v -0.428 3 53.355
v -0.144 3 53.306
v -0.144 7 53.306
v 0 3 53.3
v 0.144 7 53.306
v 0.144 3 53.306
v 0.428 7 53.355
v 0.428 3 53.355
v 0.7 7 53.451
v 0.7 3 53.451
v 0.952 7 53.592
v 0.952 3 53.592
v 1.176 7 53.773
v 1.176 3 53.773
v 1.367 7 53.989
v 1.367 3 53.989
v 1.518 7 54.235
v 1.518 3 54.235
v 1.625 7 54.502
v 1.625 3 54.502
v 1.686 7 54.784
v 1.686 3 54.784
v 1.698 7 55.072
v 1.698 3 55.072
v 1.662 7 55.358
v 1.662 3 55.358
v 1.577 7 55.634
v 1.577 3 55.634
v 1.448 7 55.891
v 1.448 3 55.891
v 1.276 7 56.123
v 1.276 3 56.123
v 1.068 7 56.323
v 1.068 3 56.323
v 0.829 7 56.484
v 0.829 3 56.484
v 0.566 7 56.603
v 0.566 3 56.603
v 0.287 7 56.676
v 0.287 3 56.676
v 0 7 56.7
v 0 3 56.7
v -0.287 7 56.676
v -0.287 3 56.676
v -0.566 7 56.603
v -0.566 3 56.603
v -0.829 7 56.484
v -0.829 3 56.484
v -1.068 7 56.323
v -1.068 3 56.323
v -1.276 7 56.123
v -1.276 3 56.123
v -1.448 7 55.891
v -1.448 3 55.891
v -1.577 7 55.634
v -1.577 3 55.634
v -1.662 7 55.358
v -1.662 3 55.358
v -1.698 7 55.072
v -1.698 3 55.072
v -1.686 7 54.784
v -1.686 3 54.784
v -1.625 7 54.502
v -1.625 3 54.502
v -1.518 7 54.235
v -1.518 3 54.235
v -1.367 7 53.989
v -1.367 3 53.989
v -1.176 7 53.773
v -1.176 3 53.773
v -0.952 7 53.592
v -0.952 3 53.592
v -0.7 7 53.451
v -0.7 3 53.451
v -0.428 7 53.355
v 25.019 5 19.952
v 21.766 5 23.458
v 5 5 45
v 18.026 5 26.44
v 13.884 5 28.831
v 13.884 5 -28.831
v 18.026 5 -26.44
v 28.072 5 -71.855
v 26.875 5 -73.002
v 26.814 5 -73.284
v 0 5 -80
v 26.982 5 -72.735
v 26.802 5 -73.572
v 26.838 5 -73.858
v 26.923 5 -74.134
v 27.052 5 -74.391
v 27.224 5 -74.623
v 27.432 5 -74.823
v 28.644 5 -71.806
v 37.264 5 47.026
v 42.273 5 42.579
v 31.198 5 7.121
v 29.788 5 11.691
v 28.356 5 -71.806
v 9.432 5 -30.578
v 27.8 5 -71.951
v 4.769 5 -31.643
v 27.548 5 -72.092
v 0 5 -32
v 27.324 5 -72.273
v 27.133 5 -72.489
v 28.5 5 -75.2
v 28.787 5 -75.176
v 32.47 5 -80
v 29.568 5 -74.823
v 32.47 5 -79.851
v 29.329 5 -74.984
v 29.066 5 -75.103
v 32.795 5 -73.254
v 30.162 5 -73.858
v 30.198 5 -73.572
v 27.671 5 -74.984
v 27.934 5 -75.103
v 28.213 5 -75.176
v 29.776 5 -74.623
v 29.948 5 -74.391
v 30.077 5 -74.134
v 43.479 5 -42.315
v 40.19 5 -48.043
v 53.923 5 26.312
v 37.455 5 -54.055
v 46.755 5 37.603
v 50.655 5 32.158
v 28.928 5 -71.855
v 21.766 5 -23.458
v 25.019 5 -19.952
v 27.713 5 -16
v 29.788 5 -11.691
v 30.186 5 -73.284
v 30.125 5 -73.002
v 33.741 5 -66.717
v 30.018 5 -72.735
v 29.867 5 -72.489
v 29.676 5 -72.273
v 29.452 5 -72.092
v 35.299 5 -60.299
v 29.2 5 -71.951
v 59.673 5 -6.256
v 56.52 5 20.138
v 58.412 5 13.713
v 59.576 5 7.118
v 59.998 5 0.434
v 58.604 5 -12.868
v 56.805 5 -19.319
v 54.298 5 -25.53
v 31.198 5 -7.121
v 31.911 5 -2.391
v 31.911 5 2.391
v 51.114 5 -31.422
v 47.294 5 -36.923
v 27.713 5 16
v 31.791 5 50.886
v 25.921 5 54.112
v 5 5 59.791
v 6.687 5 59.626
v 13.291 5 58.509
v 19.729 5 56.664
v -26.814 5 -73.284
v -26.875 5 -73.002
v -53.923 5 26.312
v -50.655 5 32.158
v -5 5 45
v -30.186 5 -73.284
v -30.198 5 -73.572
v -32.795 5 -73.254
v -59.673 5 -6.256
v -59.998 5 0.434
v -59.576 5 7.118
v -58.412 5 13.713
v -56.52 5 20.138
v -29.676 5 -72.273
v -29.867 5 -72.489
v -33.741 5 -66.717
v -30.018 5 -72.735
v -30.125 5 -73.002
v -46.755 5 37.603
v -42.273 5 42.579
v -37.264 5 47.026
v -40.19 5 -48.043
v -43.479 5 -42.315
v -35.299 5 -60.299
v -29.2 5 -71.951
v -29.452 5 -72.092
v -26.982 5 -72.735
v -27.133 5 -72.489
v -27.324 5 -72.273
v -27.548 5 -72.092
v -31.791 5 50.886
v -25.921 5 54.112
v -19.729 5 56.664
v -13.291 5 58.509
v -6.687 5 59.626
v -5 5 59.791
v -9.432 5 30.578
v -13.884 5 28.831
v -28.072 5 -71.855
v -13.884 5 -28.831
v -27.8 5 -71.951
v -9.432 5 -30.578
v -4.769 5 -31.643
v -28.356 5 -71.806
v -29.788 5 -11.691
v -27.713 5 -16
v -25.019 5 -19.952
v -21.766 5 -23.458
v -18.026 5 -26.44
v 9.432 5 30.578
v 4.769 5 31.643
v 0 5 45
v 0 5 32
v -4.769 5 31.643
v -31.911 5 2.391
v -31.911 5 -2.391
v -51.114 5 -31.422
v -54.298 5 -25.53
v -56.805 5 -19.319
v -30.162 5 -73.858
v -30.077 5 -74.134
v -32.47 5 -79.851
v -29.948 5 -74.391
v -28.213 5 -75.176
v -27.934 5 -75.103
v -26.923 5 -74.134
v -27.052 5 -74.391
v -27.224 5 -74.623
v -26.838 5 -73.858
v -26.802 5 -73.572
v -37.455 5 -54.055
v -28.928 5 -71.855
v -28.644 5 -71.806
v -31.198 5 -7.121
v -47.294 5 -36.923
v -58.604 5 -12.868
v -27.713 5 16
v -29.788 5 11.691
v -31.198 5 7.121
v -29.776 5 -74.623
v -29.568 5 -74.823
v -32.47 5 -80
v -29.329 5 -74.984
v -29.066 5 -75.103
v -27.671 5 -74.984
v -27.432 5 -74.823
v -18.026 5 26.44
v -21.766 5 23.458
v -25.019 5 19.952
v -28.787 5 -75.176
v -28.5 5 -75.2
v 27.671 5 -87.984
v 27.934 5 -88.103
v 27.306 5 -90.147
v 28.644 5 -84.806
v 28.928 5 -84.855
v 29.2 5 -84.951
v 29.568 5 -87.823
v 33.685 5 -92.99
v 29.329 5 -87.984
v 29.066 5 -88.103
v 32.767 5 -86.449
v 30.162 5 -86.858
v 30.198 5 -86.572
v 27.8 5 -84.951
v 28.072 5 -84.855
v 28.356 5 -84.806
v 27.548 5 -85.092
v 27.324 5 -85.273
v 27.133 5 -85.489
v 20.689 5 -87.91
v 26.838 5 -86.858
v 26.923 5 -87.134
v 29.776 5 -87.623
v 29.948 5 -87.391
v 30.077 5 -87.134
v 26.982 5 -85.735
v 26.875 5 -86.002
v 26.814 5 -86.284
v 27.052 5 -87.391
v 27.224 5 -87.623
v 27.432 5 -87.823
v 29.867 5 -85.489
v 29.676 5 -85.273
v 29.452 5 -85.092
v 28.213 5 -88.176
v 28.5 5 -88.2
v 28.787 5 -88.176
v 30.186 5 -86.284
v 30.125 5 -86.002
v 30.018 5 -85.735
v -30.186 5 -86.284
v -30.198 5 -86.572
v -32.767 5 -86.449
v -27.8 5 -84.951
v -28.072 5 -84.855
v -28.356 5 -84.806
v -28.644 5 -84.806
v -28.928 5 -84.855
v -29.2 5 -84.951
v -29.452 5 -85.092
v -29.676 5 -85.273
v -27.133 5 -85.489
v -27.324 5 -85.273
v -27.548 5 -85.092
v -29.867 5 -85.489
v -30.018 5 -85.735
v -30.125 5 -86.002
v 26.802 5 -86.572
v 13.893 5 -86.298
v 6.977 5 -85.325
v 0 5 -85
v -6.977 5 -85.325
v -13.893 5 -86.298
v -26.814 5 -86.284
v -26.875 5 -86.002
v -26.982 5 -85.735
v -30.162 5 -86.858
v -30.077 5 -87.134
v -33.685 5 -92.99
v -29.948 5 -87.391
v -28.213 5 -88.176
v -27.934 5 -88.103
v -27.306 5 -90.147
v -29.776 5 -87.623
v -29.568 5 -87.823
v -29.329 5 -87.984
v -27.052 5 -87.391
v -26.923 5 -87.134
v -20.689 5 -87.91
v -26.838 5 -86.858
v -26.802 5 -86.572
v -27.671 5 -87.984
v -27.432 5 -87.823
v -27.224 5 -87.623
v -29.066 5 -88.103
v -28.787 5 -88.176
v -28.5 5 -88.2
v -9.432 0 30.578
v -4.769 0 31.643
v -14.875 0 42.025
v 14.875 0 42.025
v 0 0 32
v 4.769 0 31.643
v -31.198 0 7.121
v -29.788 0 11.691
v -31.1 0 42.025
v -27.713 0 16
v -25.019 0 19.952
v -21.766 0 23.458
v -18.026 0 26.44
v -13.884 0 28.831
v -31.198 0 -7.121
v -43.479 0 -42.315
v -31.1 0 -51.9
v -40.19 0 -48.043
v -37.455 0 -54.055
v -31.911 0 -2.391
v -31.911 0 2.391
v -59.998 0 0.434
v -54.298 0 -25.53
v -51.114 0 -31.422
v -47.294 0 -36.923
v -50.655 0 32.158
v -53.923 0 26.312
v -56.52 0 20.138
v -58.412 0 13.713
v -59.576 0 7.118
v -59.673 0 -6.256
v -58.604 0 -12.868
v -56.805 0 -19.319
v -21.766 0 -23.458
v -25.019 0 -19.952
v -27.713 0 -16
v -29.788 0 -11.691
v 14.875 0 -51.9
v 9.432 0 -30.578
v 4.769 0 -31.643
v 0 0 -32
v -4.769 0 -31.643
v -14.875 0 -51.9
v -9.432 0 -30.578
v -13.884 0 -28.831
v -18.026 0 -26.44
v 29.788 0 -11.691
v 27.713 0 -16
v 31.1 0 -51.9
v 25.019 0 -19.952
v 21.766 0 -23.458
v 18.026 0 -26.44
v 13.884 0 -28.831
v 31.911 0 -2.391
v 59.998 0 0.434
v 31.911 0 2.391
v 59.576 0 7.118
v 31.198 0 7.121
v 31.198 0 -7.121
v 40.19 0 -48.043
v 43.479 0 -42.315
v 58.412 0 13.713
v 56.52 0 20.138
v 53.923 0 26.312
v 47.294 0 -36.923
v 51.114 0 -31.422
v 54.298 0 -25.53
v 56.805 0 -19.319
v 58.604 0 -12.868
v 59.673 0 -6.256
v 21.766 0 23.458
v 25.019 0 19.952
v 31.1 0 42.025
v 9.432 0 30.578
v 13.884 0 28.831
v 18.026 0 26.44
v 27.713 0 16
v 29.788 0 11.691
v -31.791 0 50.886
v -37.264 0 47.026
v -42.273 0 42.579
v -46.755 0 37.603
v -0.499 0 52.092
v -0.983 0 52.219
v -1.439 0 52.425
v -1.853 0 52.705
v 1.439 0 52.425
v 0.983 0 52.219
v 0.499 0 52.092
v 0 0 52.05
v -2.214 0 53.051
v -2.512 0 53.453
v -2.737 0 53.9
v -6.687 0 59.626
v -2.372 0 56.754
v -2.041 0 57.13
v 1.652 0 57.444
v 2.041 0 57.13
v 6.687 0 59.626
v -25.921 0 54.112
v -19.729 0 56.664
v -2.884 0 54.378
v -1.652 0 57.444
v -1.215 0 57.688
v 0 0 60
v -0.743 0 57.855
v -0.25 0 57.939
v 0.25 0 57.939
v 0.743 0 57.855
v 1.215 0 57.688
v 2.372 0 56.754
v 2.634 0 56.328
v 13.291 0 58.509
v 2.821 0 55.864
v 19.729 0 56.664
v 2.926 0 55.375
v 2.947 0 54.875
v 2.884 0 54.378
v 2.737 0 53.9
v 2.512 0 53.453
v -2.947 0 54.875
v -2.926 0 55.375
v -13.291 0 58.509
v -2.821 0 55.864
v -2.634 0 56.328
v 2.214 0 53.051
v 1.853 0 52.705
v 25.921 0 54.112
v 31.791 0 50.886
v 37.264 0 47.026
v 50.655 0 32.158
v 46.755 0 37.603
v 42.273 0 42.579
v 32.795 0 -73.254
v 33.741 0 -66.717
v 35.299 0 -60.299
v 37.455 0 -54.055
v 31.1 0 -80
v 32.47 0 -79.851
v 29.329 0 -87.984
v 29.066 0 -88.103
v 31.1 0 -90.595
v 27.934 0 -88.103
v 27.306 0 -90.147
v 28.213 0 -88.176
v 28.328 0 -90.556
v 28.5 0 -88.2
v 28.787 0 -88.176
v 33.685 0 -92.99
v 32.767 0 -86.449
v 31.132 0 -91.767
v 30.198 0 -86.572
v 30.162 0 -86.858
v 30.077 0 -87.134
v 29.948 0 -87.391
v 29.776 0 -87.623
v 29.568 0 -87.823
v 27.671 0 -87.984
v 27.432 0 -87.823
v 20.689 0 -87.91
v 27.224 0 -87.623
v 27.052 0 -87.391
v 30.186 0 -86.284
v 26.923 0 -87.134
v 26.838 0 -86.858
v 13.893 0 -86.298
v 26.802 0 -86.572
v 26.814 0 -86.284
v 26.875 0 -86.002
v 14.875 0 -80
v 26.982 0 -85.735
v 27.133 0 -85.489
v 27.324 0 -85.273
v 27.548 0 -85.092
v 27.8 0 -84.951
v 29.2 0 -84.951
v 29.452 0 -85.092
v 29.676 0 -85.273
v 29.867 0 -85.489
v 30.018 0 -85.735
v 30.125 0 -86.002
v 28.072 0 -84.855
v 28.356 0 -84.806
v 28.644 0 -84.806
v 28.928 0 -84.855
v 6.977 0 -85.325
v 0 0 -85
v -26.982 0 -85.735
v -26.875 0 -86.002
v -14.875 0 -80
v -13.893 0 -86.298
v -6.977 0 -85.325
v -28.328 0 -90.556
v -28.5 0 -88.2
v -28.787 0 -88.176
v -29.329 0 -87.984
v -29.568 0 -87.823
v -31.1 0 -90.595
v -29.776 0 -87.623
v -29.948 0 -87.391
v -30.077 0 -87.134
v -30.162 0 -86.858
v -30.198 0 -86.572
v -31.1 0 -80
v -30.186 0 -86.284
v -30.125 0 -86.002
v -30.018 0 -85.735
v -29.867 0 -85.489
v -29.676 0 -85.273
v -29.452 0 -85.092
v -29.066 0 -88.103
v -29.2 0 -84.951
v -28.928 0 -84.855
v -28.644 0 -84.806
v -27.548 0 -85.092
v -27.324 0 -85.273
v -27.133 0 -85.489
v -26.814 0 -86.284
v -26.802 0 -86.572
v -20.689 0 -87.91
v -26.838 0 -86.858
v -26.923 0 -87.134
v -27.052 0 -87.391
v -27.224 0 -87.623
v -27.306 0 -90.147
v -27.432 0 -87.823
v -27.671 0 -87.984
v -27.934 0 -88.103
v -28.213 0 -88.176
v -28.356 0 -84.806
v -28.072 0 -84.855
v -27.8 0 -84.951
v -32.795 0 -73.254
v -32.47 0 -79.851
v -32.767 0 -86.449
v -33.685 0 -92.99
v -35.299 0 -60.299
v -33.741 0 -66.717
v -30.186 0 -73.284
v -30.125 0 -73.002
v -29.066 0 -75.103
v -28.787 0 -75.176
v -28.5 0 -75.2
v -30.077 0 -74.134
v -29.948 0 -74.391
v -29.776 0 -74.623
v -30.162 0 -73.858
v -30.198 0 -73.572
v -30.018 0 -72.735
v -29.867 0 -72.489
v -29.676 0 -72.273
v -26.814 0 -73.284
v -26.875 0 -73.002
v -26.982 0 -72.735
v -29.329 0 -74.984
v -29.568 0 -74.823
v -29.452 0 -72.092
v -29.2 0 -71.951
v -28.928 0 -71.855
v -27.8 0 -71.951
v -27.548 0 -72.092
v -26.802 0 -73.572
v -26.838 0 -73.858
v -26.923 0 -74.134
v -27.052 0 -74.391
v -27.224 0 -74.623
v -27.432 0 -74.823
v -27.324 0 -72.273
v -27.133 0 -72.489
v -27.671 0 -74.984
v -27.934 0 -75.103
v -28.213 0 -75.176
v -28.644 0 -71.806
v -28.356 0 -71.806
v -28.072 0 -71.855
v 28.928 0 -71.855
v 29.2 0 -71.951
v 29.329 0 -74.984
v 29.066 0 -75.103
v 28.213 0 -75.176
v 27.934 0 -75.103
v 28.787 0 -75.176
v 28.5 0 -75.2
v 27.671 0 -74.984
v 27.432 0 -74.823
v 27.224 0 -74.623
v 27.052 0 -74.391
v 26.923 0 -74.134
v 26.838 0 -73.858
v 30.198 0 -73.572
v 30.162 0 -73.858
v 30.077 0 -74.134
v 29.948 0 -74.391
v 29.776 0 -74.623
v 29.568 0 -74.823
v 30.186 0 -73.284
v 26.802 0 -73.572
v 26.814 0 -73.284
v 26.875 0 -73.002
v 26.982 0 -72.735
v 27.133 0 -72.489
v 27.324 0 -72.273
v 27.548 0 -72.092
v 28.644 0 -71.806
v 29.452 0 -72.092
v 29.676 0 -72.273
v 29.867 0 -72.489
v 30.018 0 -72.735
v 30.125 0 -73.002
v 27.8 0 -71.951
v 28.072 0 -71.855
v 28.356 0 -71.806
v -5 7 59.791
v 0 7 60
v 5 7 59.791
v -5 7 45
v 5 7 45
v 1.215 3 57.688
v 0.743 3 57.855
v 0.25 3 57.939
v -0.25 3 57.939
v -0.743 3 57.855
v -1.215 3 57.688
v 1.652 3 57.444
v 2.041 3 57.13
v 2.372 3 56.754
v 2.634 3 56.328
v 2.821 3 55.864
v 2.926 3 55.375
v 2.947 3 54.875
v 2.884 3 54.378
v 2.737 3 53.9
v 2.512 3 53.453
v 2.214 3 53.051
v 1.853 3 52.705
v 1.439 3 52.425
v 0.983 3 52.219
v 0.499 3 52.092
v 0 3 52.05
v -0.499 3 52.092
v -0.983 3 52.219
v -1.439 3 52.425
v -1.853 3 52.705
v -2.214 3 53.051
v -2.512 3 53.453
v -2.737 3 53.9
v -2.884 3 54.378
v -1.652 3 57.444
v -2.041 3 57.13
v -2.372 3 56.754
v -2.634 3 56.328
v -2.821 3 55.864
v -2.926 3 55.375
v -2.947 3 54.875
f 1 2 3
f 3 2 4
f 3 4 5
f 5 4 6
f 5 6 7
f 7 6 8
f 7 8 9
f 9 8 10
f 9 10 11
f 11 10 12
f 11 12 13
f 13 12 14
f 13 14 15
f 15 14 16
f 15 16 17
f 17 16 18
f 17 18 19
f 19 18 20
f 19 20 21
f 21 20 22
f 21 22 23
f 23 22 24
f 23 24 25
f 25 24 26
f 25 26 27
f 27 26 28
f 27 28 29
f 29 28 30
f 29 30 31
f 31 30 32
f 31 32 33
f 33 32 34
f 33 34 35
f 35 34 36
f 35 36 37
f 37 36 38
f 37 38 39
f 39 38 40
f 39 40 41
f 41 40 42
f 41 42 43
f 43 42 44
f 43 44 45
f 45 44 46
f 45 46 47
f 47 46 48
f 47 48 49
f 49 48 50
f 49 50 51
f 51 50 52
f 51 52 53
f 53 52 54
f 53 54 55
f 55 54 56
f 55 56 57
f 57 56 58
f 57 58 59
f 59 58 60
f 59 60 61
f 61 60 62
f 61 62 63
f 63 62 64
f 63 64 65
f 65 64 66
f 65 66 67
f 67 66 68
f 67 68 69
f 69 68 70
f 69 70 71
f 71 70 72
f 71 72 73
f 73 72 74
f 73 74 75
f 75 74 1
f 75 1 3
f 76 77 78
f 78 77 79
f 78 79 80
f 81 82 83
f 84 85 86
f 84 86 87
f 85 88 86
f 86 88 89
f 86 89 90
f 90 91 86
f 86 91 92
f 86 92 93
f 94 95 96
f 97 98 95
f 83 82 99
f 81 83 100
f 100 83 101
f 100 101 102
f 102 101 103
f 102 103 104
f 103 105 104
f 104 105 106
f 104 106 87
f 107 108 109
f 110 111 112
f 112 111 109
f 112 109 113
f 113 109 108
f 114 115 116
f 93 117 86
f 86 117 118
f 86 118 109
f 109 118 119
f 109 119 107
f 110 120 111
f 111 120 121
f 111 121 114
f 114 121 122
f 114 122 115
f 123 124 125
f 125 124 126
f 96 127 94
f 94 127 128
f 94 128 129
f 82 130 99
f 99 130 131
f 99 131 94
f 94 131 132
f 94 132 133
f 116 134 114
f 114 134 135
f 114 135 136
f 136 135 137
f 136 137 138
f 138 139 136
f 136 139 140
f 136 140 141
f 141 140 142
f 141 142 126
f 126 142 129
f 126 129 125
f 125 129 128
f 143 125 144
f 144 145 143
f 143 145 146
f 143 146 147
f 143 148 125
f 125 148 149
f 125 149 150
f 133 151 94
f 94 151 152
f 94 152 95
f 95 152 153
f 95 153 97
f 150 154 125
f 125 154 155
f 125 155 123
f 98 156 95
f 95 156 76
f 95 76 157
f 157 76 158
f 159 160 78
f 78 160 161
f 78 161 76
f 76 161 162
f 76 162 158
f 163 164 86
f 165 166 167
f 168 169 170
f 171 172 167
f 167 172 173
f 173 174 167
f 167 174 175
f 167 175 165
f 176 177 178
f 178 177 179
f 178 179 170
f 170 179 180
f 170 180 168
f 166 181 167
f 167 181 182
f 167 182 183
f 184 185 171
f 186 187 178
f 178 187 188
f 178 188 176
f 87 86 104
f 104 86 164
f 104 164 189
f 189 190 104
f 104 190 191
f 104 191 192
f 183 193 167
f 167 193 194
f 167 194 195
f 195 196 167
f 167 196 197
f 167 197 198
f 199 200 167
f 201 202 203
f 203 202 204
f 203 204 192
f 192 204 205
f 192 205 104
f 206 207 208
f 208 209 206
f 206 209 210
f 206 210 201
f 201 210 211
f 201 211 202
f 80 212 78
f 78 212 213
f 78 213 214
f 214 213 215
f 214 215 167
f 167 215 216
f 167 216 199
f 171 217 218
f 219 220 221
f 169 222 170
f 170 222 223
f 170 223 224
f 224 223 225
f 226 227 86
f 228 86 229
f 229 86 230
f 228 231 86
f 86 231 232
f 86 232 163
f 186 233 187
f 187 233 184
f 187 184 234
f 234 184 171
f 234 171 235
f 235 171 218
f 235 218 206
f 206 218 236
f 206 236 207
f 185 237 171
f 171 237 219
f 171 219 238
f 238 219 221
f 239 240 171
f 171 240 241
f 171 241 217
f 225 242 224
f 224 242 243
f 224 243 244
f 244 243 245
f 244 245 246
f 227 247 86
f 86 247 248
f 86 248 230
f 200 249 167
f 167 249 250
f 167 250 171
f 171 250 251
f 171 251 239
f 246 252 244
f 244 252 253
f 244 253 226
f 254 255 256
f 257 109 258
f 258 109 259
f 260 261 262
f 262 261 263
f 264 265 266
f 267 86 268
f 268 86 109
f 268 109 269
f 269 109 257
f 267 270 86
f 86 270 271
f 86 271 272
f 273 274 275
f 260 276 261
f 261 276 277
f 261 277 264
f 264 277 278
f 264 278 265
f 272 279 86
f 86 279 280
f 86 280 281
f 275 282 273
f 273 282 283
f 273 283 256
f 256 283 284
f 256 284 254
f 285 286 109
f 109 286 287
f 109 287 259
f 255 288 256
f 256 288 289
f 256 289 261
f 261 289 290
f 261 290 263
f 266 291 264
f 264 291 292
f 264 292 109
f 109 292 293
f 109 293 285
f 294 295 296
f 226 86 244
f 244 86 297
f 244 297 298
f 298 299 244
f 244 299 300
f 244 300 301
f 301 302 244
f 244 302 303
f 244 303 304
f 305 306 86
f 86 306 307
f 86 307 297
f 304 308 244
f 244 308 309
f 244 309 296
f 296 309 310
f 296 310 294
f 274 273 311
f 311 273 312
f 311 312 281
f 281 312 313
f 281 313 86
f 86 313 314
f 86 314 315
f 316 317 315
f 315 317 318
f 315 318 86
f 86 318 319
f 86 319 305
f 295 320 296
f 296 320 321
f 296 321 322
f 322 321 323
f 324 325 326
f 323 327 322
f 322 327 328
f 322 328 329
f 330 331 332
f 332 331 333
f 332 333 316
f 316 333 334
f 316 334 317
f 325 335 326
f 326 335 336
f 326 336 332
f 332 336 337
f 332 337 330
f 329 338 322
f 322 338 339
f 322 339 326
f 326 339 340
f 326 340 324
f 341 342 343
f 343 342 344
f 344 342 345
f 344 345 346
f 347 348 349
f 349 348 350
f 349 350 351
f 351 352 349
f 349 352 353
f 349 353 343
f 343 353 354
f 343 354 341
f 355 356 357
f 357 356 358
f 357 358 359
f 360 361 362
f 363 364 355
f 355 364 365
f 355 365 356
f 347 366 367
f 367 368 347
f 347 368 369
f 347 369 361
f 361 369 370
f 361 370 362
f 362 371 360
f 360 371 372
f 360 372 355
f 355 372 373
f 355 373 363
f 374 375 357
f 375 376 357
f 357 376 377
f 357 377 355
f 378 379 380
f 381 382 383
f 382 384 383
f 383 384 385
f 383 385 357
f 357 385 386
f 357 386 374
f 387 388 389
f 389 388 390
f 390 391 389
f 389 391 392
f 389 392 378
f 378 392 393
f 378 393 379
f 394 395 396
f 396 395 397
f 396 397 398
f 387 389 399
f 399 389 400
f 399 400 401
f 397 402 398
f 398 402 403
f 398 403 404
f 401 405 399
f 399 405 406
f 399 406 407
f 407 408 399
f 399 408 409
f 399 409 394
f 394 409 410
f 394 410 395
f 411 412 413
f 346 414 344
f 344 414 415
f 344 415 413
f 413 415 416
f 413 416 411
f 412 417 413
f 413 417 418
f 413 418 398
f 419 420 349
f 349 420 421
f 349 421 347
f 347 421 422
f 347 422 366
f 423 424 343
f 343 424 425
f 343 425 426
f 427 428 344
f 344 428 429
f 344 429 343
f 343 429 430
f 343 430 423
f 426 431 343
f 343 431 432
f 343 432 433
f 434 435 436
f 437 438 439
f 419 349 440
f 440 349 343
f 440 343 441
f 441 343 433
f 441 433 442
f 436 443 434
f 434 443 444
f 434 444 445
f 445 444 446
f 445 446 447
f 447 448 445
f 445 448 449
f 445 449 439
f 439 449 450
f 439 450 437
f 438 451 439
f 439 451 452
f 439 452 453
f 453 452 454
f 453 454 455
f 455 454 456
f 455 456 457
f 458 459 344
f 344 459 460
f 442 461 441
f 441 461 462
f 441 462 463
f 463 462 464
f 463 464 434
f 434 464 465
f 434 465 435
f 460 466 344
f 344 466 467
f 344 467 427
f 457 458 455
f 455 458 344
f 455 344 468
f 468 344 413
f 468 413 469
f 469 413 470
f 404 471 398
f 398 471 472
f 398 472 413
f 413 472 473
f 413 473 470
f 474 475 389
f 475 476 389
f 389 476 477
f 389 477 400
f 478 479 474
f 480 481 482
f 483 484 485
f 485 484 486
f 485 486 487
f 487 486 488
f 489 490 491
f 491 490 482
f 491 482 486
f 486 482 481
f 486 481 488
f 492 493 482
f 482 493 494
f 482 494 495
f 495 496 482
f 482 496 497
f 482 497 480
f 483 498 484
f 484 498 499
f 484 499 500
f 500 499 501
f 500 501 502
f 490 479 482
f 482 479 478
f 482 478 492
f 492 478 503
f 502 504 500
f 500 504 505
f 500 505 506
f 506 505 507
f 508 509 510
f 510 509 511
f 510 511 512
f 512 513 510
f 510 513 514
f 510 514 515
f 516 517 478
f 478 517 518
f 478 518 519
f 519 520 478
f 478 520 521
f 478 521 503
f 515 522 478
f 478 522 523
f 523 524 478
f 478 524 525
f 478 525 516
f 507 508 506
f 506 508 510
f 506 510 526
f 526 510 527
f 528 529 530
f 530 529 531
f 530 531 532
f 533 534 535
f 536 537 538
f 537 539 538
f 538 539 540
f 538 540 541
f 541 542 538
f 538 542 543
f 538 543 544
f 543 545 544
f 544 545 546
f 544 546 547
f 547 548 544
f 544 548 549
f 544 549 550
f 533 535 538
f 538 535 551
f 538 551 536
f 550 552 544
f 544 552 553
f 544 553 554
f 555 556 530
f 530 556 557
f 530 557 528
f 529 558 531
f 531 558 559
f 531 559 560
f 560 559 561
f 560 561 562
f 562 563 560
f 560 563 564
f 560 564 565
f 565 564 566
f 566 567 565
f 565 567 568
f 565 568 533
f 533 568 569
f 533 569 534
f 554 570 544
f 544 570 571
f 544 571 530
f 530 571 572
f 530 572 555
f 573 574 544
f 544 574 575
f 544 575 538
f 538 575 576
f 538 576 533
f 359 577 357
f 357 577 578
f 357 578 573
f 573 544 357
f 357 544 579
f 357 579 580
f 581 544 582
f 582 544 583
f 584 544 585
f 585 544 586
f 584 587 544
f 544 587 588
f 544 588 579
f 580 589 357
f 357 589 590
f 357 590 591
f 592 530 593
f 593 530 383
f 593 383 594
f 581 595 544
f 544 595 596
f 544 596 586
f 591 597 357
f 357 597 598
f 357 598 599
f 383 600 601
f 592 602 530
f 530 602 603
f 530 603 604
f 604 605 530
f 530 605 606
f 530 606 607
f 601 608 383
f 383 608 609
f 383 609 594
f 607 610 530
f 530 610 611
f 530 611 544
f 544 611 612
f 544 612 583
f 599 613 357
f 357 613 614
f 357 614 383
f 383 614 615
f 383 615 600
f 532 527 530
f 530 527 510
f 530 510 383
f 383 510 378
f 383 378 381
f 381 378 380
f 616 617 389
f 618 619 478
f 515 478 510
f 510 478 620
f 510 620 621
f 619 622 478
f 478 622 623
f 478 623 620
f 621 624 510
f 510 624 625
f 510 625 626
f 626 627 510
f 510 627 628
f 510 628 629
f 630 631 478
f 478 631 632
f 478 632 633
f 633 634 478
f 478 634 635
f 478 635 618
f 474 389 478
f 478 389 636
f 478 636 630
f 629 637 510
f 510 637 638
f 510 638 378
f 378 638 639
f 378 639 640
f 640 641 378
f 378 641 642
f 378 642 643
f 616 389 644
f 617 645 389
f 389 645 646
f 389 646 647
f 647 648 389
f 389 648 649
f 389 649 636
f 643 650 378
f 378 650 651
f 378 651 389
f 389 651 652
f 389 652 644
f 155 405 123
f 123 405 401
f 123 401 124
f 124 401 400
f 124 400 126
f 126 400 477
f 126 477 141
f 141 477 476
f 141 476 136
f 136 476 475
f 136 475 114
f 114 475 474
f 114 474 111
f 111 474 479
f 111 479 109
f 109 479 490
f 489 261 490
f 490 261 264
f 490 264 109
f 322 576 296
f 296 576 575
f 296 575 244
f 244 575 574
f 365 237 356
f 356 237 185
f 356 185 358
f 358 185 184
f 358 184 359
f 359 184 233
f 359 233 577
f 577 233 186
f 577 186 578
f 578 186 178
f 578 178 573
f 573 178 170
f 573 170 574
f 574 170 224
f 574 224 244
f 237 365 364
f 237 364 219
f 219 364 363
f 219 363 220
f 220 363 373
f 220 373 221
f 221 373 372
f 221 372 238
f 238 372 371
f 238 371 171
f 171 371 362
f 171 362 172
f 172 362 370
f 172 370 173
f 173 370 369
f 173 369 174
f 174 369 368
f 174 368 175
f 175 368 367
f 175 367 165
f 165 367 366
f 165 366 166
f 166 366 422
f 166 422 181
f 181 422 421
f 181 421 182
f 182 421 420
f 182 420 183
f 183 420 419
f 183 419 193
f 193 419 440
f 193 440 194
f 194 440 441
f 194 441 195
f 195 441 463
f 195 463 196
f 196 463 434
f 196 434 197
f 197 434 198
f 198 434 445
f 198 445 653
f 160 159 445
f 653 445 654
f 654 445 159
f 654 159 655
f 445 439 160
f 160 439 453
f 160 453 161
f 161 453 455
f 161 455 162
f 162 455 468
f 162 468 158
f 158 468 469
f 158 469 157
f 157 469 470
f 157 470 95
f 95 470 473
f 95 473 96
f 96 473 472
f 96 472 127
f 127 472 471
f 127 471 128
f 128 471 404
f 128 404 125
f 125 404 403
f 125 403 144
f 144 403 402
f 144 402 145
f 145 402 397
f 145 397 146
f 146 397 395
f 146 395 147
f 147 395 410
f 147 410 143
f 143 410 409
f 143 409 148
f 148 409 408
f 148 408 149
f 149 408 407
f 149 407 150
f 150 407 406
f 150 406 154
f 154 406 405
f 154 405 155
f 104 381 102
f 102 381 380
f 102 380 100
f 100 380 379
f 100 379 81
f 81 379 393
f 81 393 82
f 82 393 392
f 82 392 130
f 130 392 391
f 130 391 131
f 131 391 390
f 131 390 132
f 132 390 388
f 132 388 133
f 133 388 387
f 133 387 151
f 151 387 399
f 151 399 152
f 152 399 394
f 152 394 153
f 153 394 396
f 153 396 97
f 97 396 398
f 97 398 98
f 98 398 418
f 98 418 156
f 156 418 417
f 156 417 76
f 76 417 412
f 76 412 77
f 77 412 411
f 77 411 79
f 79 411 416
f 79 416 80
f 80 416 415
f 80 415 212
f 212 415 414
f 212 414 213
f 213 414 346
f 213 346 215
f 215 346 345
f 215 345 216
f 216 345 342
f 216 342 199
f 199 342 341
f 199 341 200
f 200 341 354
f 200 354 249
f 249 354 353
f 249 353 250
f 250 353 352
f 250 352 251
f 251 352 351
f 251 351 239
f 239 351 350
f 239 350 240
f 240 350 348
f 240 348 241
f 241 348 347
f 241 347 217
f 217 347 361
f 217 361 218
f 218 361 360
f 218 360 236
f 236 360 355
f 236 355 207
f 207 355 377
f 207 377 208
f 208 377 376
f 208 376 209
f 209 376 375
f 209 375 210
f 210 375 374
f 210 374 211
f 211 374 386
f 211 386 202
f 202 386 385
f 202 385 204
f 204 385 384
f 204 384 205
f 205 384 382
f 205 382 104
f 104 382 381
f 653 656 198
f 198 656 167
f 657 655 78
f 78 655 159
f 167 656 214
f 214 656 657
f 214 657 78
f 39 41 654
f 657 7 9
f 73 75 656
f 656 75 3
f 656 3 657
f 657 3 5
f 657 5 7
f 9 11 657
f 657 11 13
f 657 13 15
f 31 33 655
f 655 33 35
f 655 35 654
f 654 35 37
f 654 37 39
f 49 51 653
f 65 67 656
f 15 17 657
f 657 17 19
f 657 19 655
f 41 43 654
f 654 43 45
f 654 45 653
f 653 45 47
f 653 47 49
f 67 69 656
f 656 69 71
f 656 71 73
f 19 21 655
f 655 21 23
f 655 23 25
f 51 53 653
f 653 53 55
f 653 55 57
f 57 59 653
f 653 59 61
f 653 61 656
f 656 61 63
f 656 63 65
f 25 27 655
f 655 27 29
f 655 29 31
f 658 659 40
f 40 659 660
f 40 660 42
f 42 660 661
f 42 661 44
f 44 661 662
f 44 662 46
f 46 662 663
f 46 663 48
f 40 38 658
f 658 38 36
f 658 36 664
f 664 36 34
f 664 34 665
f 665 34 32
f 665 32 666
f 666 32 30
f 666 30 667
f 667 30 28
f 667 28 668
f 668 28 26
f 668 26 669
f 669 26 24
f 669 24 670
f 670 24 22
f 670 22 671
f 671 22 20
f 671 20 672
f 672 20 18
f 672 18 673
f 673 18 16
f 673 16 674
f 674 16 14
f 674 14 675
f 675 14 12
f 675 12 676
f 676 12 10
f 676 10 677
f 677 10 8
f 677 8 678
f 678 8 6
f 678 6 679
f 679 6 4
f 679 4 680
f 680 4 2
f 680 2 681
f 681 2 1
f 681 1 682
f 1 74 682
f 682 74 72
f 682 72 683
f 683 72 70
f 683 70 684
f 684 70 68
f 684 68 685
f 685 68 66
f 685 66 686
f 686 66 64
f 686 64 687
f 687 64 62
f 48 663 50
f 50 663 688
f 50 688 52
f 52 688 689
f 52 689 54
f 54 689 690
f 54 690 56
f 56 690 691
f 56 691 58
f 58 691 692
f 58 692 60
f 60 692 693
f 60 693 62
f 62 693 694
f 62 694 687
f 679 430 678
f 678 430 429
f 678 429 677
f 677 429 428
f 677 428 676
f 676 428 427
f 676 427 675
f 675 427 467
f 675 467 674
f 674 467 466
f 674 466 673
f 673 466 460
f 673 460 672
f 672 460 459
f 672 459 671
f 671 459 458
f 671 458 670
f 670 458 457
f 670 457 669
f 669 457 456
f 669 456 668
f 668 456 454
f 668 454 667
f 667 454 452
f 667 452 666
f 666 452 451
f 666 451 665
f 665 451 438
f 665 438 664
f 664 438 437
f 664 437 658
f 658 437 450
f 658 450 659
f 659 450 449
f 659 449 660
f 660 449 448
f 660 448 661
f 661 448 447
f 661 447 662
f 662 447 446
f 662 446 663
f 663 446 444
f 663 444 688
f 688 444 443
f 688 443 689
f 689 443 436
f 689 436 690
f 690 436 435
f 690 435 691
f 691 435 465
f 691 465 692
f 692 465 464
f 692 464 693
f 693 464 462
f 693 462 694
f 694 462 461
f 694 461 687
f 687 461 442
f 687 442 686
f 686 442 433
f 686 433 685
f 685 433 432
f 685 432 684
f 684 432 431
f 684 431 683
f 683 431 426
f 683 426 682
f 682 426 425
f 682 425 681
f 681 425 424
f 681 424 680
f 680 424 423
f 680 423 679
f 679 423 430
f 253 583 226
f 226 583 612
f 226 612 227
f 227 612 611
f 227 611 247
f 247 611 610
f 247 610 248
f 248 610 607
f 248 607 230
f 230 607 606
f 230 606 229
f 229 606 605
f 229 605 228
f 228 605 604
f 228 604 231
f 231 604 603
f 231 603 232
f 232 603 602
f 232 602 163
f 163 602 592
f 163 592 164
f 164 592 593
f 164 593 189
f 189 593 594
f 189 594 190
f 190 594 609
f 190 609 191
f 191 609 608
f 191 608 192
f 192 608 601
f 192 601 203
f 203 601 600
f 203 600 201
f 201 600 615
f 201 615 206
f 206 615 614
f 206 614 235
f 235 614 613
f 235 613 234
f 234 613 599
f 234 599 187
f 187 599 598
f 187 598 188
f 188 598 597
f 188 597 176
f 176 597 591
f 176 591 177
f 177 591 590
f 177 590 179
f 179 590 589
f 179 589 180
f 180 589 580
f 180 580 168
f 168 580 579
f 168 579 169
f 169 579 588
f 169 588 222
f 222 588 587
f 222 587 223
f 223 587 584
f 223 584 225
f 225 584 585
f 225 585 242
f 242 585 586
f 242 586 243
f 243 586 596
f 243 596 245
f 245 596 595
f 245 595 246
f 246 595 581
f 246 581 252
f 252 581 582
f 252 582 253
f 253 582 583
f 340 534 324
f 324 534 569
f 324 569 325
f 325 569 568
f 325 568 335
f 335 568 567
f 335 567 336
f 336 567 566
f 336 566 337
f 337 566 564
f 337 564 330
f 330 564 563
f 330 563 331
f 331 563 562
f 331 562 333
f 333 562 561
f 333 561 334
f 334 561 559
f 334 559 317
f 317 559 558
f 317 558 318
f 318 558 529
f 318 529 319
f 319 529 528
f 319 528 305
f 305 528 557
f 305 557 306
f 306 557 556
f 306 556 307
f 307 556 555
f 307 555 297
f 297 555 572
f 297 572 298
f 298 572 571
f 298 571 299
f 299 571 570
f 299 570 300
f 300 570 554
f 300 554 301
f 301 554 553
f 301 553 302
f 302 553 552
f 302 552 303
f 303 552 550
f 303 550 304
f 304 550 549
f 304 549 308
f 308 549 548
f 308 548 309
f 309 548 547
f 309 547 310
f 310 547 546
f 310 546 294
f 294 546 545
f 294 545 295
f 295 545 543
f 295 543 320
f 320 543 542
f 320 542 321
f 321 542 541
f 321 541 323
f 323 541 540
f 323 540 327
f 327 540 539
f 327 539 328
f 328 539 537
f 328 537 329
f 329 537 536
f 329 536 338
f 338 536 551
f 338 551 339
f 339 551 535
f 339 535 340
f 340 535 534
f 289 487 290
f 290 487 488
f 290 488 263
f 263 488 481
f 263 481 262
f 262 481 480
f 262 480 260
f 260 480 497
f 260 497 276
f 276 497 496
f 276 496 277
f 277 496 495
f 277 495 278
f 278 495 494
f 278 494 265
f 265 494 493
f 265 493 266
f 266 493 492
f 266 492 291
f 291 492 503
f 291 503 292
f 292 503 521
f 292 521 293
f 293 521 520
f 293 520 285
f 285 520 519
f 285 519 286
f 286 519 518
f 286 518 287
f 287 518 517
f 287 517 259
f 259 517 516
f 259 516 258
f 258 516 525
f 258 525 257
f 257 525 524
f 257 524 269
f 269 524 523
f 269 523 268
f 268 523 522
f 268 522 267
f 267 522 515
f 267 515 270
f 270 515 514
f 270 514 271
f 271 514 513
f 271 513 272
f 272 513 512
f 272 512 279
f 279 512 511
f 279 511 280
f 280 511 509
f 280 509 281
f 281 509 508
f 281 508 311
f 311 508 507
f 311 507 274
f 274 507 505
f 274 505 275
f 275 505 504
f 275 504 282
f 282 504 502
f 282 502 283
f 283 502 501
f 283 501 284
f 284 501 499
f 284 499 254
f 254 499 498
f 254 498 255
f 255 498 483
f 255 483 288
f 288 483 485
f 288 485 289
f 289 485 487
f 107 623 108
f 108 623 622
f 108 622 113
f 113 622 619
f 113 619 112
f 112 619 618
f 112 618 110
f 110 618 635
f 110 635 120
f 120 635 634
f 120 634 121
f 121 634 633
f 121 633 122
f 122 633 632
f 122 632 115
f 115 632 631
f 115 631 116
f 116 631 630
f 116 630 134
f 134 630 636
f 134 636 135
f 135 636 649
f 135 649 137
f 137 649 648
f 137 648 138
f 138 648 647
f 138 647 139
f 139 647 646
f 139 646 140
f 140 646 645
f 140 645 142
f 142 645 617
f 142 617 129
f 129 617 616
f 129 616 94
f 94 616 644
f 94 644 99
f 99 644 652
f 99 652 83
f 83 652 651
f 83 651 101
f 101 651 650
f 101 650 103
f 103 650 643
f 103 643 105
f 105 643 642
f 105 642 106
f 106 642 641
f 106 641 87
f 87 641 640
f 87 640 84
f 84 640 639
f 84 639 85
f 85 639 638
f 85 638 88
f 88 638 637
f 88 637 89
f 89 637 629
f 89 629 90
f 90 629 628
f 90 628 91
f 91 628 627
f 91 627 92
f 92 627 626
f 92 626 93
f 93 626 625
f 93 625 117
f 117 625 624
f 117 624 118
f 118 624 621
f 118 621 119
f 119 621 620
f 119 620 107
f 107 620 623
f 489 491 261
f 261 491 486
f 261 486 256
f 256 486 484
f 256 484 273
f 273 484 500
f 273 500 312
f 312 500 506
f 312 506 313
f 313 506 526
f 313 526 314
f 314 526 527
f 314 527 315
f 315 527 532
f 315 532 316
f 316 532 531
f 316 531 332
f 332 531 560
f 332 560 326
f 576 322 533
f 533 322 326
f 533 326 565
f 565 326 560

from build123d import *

# Parameters (mm, degrees)
CROQUIS1_R              = 32
SALIENTE_EXTRUIR1_DEPTH = 5
SALIENTE_EXTRUIR2_DEPTH = 2
CROQUIS3_R              = 1.7
CORTAR_EXTRUIR1_DEPTH   = 19
CROQUIS4_R              = 2.95
CORTAR_EXTRUIR2_DEPTH   = 3
CROQUIS5_R              = 1.7
CORTAR_EXTRUIR3_DEPTH   = 5
CROQUIS9_R              = 75
CORTAR_EXTRUIR6_DEPTH   = 37


with BuildPart() as part:
    # Croquis1 → Saliente-Extruir1 (new body)
    with BuildSketch(Plane(origin=(0, 0, 0), x_dir=(1, 0, 0), z_dir=(0, 1, 0))):
        with BuildLine():
            ThreePointArc((-47.29361892, 36.923076923), (0, -60), (47.29361892, 36.923076923))
            ThreePointArc((47.29361892, 36.923076923), (32.46950766, 80), (47.29361892, 123.076923077))
            ThreePointArc((47.29361892, 123.076923077), (0, 220), (-47.29361892, 123.076923077))
            ThreePointArc((-47.29361892, 123.076923077), (-32.46950766, 80), (-47.29361892, 36.923076923))
        make_face()
        Circle(CROQUIS1_R, mode=Mode.SUBTRACT)
        with Locations((0, 160)):
            Circle(CROQUIS1_R, mode=Mode.SUBTRACT)
    extrude(amount=SALIENTE_EXTRUIR1_DEPTH)

    # Croquis2 → Saliente-Extruir2 (add)
    with BuildSketch(Plane(origin=(0, 5, 0), x_dir=(1, 0, 0), z_dir=(0, 1, 0))):
        with BuildLine():
            Line((5, 205), (-5, 205))
            Line((-5, 205), (-5, 219.791303716))
            ThreePointArc((-5, 219.791303716), (0, 220), (5, 219.791303716))
            Line((5, 219.791303716), (5, 205))
        make_face()
        with BuildLine():
            Line((-5, -45), (5, -45))
            Line((5, -45), (5, -59.791303716))
            ThreePointArc((5, -59.791303716), (0, -60), (-5, -59.791303716))
            Line((-5, -59.791303716), (-5, -45))
        make_face()
    extrude(amount=SALIENTE_EXTRUIR2_DEPTH)

    # Croquis3 → Cortar-Extruir1 (cut)
    with BuildSketch(Plane(origin=(0, 7, 0), x_dir=(1, 0, 0), z_dir=(0, 1, 0))):
        with Locations((0, 215)):
            Circle(CROQUIS3_R)
        with Locations((0, -55)):
            Circle(CROQUIS3_R)
    extrude(amount=-CORTAR_EXTRUIR1_DEPTH, mode=Mode.SUBTRACT)

    # Croquis4 → Cortar-Extruir2 (cut)
    with BuildSketch(Plane.XZ):
        with Locations((0, 55)):
            Circle(CROQUIS4_R)
        with Locations((0, -215)):
            Circle(CROQUIS4_R)
    extrude(amount=-CORTAR_EXTRUIR2_DEPTH, mode=Mode.SUBTRACT)

    # Croquis5 → Cortar-Extruir3 (cut)
    with BuildSketch(Plane.XZ):
        with Locations((-28.5, -73.5)):
            Circle(CROQUIS5_R)
        with Locations((-28.5, -86.5)):
            Circle(CROQUIS5_R)
        with Locations((28.5, -86.5)):
            Circle(CROQUIS5_R)
        with Locations((28.5, -73.5)):
            Circle(CROQUIS5_R)
    extrude(amount=-CORTAR_EXTRUIR3_DEPTH, mode=Mode.SUBTRACT)

    # Croquis9 → Cortar-Extruir6 (cut)
    with BuildSketch(Plane.XZ):
        with Locations((0, -160)):
            Circle(CROQUIS9_R)
    extrude(amount=-CORTAR_EXTRUIR6_DEPTH, mode=Mode.SUBTRACT)


solid = part.part
